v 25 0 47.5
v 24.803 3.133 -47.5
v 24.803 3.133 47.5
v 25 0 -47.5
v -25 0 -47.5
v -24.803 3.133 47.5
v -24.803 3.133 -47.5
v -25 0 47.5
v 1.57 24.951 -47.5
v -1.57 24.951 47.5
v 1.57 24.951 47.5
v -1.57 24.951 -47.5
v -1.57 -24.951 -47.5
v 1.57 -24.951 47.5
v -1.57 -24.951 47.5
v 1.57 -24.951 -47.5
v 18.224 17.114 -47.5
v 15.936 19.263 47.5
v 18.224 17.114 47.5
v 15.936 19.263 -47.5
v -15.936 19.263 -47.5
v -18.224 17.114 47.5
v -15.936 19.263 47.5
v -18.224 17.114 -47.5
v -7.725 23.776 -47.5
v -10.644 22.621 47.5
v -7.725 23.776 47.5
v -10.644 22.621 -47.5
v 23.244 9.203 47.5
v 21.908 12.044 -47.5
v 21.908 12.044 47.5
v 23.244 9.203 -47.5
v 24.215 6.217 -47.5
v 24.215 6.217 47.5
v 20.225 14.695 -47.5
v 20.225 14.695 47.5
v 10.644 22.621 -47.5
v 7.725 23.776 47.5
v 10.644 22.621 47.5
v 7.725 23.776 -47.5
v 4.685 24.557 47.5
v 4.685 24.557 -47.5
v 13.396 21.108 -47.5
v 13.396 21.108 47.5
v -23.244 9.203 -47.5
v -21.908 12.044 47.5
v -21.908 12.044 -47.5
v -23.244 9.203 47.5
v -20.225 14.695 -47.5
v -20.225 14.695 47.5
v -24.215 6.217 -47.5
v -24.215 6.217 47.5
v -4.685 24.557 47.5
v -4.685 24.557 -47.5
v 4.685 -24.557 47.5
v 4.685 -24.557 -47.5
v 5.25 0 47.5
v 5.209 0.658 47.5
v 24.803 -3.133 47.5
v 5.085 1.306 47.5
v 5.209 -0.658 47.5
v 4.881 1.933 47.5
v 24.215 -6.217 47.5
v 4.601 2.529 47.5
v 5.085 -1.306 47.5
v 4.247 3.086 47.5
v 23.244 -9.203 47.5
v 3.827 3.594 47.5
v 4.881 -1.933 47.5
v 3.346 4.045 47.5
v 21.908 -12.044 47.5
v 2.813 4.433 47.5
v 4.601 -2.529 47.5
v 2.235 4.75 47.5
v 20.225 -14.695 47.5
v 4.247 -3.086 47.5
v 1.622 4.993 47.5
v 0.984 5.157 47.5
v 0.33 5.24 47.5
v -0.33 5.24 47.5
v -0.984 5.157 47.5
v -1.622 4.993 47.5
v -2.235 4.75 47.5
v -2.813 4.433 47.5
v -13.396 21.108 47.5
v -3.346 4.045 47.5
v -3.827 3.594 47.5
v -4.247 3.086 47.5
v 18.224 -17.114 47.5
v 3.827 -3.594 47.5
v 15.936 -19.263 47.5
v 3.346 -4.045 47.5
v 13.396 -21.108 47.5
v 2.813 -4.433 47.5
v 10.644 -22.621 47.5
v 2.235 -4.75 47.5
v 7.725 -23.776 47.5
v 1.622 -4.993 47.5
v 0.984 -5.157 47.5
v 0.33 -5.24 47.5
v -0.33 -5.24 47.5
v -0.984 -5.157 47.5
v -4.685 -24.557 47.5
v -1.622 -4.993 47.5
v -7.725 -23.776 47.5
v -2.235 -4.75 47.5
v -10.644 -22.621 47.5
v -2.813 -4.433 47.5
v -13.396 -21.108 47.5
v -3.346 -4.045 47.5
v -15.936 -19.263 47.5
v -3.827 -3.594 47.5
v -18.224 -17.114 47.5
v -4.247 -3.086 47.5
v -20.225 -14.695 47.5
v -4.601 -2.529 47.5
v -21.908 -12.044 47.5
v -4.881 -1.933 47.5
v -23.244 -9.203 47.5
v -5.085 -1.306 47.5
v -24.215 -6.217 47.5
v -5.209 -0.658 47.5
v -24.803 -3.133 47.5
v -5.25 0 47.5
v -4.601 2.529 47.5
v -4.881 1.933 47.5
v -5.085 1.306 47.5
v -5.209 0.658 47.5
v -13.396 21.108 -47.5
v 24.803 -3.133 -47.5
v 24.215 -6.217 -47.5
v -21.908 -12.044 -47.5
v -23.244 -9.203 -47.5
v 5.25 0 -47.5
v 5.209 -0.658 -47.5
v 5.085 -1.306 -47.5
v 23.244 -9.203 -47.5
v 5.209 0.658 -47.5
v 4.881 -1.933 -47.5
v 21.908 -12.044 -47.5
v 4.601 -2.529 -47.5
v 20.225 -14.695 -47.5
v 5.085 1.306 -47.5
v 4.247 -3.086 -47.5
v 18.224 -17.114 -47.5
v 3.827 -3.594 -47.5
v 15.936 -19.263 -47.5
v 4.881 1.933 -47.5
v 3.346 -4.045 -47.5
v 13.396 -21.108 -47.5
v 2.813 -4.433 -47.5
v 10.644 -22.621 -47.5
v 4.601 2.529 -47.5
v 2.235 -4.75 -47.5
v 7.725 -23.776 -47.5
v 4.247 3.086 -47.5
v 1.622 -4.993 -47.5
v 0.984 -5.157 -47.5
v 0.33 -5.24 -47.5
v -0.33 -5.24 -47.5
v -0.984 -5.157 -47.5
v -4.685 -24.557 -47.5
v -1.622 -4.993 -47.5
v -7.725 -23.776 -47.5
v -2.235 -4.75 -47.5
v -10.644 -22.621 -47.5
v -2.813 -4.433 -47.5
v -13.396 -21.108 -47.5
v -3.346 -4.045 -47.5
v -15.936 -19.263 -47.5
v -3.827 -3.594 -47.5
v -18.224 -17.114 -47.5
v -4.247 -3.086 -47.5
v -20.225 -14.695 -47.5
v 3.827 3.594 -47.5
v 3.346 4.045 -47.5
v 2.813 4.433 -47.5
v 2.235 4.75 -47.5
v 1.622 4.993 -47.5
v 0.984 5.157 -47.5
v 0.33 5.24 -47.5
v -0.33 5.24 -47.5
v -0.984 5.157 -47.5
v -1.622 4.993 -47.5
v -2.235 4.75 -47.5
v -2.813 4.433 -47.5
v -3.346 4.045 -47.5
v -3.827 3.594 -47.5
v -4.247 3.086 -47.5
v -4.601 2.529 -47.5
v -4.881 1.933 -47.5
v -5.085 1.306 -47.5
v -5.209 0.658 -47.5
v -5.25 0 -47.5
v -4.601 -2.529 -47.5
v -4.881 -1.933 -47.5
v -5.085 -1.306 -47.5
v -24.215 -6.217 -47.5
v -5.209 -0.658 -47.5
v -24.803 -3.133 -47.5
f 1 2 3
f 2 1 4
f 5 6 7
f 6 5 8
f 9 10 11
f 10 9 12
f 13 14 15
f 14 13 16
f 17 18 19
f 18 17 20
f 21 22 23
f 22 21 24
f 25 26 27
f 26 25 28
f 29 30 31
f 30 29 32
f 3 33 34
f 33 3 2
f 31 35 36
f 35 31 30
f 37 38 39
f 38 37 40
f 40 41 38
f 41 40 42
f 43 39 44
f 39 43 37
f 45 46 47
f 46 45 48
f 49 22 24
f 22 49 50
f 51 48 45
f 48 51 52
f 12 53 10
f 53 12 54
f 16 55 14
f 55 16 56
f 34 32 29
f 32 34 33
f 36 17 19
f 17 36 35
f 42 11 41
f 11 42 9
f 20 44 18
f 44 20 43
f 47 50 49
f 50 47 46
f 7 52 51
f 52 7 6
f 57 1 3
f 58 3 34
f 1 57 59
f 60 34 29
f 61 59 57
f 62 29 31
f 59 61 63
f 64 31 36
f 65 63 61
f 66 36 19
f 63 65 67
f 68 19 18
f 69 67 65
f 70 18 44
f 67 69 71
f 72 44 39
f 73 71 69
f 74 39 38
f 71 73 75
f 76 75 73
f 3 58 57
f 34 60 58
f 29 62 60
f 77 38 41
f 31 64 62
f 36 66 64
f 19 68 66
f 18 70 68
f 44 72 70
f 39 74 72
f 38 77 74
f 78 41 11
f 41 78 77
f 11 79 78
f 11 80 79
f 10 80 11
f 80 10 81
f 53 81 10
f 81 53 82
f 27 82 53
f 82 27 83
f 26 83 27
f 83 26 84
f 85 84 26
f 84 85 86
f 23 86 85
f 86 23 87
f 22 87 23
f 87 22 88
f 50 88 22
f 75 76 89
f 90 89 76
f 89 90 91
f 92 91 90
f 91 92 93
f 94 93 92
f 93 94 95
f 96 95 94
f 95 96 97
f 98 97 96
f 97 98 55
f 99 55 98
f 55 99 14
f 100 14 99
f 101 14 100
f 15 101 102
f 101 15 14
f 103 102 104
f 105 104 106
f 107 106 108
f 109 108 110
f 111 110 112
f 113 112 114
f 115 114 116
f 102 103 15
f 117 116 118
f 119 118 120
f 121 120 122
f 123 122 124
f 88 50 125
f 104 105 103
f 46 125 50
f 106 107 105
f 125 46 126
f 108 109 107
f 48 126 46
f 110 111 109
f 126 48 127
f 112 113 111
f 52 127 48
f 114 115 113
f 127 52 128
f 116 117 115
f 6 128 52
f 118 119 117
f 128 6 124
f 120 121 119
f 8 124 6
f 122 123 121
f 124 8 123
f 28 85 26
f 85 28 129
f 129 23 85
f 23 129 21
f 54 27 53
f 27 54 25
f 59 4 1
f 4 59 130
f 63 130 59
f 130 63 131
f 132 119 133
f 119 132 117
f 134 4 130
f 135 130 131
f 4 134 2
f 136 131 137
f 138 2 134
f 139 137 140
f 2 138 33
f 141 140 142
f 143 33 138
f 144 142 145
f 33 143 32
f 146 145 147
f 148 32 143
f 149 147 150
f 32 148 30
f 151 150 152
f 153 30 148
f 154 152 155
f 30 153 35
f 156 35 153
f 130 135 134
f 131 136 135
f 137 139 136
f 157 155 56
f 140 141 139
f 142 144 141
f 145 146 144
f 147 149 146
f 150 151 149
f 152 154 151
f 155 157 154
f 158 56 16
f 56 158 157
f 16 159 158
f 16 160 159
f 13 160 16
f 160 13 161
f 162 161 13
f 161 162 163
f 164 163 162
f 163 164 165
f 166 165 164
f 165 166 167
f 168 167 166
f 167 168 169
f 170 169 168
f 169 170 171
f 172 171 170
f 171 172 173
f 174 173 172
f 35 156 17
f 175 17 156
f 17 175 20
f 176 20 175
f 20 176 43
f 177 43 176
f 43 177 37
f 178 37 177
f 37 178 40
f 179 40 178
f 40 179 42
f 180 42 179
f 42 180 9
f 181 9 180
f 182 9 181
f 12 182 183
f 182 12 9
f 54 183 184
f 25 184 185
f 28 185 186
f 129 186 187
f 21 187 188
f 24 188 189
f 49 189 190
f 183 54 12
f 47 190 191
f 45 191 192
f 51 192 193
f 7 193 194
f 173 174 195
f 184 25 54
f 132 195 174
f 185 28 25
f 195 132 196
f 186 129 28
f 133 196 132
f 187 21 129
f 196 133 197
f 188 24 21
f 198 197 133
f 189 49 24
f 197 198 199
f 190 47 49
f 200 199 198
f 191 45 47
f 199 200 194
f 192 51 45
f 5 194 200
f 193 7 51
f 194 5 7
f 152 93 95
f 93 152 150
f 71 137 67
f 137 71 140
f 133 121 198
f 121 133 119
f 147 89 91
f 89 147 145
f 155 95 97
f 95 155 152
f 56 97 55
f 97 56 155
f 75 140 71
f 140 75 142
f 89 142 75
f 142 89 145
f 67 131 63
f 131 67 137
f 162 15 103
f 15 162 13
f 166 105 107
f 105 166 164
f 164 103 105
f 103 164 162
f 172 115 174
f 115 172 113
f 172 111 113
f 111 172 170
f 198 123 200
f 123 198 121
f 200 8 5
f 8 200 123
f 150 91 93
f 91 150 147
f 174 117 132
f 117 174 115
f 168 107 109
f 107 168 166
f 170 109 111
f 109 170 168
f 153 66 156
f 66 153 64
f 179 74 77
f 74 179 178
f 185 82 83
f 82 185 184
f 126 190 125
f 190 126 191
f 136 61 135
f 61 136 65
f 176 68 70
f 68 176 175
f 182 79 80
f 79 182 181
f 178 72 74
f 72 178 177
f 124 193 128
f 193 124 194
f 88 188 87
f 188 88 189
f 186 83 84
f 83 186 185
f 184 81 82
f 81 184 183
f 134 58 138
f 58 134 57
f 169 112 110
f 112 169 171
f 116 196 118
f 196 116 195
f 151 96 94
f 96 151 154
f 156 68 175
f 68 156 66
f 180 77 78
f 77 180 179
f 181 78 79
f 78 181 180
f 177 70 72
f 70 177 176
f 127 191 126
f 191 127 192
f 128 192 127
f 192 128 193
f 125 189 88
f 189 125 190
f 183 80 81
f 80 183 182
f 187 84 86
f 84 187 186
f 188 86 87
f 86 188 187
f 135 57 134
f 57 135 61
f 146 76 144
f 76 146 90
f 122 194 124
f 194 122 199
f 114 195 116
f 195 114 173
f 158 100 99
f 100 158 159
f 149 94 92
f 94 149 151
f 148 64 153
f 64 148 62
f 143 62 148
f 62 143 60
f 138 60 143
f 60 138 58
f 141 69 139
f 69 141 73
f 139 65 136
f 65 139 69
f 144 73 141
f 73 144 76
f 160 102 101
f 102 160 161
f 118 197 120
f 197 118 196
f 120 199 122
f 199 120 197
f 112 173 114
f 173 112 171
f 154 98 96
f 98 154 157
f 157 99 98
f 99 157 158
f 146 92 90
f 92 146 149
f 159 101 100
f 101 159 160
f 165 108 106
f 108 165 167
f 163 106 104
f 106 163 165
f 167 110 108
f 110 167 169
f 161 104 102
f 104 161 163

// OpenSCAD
$fn = 50;


difference() {
	union() {
		translate(v = [0, 0, -47.5000000000]) {
			cylinder(h = 95, r = 25.0000000000);
		}
	}
	union() {
		translate(v = [0, 0, -100.0000000000]) {
			cylinder(h = 200, r = 5.2500000000);
		}
	}
}
